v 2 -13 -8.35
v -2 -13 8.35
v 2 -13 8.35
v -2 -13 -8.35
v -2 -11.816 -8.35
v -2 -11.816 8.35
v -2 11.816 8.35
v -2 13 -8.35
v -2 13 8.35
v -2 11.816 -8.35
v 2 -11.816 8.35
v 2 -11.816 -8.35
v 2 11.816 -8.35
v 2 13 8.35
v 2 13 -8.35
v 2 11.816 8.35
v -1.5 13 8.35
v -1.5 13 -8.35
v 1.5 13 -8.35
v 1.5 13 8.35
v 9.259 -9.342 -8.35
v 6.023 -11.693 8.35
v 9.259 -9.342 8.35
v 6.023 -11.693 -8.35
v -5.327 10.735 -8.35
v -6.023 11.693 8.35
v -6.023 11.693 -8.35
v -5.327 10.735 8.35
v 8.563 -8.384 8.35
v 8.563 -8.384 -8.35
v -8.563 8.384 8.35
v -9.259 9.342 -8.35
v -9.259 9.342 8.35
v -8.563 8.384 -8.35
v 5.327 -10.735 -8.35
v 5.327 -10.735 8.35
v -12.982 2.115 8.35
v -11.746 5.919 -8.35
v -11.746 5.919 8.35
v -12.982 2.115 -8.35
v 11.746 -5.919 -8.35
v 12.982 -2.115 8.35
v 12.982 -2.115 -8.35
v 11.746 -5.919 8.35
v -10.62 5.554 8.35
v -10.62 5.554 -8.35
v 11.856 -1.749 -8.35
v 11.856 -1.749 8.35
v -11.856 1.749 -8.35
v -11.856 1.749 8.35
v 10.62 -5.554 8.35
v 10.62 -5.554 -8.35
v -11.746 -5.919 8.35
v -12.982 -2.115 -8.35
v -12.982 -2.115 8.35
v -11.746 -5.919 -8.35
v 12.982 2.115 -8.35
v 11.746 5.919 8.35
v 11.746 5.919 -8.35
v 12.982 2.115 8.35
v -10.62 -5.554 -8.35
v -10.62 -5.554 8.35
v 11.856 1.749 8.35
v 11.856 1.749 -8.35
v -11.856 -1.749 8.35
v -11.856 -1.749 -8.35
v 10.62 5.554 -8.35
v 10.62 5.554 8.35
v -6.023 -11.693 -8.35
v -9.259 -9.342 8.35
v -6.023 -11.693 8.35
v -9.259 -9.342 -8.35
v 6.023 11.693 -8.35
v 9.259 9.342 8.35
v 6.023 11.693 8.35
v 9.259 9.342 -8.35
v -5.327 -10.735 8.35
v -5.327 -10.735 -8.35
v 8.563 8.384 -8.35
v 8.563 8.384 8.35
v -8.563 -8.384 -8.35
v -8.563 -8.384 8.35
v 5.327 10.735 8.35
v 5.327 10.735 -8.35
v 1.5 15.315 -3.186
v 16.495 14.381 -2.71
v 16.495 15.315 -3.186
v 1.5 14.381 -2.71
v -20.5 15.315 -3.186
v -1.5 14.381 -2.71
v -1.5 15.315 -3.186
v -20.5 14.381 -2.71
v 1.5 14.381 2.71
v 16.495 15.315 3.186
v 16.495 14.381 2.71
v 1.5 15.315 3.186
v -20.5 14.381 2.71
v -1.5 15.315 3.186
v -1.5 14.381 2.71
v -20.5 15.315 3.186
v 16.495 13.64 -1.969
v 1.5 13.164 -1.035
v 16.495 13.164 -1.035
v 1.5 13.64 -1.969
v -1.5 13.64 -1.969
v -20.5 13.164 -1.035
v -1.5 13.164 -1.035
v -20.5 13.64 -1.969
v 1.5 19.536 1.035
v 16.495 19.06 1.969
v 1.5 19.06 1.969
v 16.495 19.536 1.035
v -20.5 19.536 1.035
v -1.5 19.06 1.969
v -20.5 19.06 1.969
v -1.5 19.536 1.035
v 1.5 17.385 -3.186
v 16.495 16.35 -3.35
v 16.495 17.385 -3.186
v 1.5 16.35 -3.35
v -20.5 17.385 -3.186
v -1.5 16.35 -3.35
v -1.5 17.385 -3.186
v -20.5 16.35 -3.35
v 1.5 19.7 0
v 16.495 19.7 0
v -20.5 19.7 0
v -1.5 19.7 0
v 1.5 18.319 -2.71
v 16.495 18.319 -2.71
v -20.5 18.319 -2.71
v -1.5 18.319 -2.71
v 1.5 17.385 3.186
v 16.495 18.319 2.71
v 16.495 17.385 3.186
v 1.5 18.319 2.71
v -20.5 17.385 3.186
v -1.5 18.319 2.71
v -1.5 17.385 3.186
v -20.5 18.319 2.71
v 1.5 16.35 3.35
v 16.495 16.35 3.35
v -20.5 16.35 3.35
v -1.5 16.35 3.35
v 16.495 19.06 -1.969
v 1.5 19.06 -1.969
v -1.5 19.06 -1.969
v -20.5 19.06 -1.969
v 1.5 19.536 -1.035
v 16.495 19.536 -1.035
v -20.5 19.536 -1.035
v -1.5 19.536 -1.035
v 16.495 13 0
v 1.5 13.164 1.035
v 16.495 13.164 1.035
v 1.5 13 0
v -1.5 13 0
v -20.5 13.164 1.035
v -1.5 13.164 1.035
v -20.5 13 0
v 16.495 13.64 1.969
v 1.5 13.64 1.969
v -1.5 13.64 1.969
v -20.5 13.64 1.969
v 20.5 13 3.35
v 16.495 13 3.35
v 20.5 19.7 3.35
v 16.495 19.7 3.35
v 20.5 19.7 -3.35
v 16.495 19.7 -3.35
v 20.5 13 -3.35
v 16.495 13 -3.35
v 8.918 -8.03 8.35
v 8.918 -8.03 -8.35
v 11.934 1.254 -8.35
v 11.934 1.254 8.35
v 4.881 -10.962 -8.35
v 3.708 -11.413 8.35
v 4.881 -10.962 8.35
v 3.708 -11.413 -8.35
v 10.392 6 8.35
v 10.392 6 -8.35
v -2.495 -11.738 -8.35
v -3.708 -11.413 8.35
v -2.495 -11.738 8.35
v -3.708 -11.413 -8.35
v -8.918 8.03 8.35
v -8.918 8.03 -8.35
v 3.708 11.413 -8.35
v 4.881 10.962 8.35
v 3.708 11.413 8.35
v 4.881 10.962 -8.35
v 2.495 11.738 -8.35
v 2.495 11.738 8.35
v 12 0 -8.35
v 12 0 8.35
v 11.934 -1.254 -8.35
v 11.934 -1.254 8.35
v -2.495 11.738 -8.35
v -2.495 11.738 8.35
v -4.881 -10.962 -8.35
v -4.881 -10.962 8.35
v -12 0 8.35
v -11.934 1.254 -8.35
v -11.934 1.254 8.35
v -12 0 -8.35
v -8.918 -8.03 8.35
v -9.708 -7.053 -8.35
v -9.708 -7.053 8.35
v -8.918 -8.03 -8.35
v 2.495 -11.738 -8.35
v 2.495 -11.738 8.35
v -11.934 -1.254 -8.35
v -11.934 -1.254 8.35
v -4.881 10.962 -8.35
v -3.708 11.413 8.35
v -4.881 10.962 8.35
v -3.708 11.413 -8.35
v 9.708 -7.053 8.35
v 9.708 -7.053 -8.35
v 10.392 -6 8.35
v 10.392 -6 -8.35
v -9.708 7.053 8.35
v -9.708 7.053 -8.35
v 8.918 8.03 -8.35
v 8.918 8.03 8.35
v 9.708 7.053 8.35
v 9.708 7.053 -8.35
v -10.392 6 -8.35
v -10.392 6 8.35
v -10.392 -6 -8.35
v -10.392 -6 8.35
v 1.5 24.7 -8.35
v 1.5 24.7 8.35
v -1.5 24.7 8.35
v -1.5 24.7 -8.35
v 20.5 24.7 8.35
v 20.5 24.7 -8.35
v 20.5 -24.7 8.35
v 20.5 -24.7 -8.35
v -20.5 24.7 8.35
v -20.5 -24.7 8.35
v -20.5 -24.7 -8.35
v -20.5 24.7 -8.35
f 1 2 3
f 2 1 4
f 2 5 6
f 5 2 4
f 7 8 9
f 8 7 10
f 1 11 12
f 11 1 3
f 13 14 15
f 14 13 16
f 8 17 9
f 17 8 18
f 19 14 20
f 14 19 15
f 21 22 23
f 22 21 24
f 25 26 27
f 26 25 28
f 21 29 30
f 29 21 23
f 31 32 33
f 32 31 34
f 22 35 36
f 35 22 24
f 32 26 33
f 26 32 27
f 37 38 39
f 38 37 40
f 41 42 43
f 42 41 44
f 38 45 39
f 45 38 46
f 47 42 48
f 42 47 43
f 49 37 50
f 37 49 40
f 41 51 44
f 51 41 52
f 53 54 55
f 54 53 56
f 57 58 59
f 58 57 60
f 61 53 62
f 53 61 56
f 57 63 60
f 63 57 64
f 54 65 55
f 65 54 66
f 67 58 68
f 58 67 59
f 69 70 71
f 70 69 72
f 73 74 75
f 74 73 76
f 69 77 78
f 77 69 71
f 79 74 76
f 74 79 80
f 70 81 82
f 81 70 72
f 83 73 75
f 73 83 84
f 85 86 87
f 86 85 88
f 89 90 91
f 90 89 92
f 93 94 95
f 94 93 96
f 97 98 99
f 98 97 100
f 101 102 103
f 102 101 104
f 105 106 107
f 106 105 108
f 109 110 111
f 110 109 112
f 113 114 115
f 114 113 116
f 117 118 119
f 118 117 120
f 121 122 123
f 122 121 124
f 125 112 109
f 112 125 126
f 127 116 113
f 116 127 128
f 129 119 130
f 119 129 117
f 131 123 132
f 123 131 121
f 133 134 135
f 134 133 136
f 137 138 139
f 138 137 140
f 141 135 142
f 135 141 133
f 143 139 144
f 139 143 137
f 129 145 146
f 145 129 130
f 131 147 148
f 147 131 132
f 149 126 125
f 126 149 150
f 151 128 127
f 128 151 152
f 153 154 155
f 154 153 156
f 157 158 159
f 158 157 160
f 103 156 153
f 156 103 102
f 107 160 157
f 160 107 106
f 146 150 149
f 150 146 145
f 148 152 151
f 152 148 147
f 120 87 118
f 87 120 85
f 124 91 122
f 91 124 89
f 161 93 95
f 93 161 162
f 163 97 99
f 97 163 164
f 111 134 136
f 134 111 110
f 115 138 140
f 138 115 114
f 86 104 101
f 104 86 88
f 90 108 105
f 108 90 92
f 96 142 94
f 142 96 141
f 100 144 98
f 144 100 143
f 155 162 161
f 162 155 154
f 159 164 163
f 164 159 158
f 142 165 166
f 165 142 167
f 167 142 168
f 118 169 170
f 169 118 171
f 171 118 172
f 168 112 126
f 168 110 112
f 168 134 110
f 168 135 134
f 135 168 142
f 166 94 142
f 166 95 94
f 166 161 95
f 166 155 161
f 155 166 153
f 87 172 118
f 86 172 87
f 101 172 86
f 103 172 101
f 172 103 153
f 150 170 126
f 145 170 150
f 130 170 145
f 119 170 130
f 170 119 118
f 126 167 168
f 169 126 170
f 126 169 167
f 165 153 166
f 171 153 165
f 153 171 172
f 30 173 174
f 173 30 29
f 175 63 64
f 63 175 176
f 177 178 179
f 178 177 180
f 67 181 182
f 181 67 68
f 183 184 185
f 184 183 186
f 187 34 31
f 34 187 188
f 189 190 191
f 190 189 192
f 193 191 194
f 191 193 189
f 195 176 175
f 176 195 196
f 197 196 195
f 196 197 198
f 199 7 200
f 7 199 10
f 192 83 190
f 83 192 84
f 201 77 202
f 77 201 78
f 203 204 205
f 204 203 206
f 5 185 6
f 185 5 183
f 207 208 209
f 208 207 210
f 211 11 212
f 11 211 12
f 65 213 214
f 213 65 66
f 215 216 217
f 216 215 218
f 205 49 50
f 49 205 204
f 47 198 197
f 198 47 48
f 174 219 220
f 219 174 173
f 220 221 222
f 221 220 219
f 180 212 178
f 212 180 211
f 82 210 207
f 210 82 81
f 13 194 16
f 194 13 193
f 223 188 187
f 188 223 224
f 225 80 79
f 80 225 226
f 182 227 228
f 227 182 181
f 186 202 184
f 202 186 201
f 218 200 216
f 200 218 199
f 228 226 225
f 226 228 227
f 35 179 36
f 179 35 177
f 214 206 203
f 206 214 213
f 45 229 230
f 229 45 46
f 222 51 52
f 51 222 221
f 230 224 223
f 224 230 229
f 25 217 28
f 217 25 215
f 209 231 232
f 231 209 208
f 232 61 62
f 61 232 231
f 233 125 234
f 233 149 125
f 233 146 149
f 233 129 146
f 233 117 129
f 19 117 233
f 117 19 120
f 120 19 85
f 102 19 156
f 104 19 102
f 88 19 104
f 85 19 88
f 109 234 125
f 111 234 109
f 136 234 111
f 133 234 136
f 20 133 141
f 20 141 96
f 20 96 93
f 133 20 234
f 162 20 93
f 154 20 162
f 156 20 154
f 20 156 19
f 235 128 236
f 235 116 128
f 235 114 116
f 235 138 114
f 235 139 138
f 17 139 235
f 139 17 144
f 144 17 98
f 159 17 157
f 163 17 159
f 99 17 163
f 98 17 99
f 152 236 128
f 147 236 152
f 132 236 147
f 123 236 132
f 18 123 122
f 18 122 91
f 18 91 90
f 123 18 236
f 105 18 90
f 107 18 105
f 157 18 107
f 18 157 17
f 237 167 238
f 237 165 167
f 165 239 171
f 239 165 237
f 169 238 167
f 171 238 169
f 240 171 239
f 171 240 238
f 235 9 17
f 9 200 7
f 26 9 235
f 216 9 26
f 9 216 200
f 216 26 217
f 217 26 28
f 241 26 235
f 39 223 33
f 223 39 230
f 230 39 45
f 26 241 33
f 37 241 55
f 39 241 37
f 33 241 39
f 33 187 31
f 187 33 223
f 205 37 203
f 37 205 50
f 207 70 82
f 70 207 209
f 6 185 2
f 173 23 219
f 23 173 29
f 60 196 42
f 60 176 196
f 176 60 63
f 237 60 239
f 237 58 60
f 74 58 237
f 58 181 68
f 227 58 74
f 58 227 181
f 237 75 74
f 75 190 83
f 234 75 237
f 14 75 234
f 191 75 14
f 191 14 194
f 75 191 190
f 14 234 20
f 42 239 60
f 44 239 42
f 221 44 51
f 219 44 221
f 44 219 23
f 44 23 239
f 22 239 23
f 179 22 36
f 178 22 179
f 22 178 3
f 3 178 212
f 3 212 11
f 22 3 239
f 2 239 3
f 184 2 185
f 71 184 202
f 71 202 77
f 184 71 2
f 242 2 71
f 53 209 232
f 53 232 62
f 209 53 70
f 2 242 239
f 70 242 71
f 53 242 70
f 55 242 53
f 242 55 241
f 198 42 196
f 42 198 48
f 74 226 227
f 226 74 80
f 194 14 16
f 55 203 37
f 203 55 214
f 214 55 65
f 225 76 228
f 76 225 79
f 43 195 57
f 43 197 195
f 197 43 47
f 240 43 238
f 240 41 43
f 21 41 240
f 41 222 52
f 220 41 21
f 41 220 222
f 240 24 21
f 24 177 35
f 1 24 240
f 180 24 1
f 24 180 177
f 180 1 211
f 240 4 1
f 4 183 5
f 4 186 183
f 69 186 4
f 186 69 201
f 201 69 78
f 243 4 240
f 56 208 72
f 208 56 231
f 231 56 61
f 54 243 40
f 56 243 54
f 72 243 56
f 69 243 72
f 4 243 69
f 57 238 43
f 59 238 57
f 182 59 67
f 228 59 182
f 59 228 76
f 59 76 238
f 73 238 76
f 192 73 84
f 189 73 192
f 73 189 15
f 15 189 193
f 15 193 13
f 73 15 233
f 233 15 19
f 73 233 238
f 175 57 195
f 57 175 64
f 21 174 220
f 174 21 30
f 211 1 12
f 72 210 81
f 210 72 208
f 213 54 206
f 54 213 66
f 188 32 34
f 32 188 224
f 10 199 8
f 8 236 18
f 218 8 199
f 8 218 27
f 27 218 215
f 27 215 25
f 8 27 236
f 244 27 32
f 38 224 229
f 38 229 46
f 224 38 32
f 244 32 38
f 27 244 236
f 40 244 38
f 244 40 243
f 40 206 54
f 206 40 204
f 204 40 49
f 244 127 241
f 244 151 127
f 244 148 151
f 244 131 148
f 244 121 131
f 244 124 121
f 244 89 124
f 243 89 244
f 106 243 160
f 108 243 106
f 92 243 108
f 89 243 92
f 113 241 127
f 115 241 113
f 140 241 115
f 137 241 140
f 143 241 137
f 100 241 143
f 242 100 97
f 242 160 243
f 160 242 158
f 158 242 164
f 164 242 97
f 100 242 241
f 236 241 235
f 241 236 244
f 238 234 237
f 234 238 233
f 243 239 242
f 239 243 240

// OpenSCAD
// file: lib/boltDim.scad
/*
    Mounting Blocks to build a camera boom.

    Copyright (C) 2021 John Winans

    This program is free software: you can redistribute it and/or modify
    it under the terms of the GNU General Public License as published by
    the Free Software Foundation, either version 3 of the License, or
    (at your option) any later version.

    This program is distributed in the hope that it will be useful,
    but WITHOUT ANY WARRANTY; without even the implied warranty of
    MERCHANTABILITY or FITNESS FOR A PARTICULAR PURPOSE.  See the
    GNU General Public License for more details.

    You should have received a copy of the GNU General Public License
    along with this program.  If not, see <https://www.gnu.org/licenses/>.
*/

bolt_dim_M2_dia = 3;		// for M2 bolt loose fit
bolt_dim_M2_tap = 2.4;		// for self-tapping a M2 bolt
bolt_dim_M2_head_dia = 4.6;// diameter for a crown countersink

bolt_dim_M25_dia = 3.5;		// for M2.5 bolt loose fit
bolt_dim_M25_tap = 2.6;		// for self-tapping a M2.5 bolt
bolt_dim_M25_head_dia = 6;	// diameter for a crown countersink

bolt_dim_M3_dia = 3.6;		// M3 bolt loose fit
bolt_dim_M3_tap = 3.1;		// for self-tapping M3 bolt
bolt_dim_M3_head_dia = 6.5;	// diameter for a crown countersink

bolt_dim_M5_dia = 5.4;		// for M5 bolt loose fit
bolt_dim_M5_tap = 5;		// for self-tapping a M5 bolt
bolt_dim_M5_head_dia = 9;	// diameter for a crown countersink

nut_dim_M5_DIN985 = 9.6;	// diameter for a hex hole to retain am M5 myloc


bolt_dim_quarter_dia = 6.7;	// for 1/4" bolt loose fit
bolt_dim_quarter_carriage_neck_depth = 4;	// neck length
// file: lib/clamp.scad
/*
	Mounting Blocks to build a camera boom.

    Copyright (C) 2021 John Winans

    This program is free software: you can redistribute it and/or modify
    it under the terms of the GNU General Public License as published by
    the Free Software Foundation, either version 3 of the License, or
    (at your option) any later version.

    This program is distributed in the hope that it will be useful,
    but WITHOUT ANY WARRANTY; without even the implied warranty of
    MERCHANTABILITY or FITNESS FOR A PARTICULAR PURPOSE.  See the
    GNU General Public License for more details.

    You should have received a copy of the GNU General Public License
    along with this program.  If not, see <https://www.gnu.org/licenses/>.
*/

include <boltDim.scad>


//********************************************************
// A pipe & bolt holes for a pipe clamp.
//********************************************************
module clamp_neg(
    relief_slot,        // how far from the edge of the pipe should the relief slot go?
    pipe_length, 
    pipe_diameter,
    clamp_bolt_length,    // used to determine the length of the clamp bolt
    clamp_bolt_dia,
    clamp_bolt_neck_depth,
    clamp_bolt_clearance,
    rib=false, 
    stripe=true
    )
{
    clamp_bolt_offset = pipe_diameter/2+clamp_bolt_dia/2+clamp_bolt_clearance;

    cz = pipe_length+.01;
    
    // the pipe hole
    cylinder(d=pipe_diameter, h=cz+.01, center=true, $fn=60);
    
    if (rib)
    {
        // rib it
        rh=2;
        rs=4;
        for (z=[-cz/2+rh*.5+1 : rs : cz/2]) // XXX fudge start to center it
            translate([0,0,z])
                cylinder(d=pipe_diameter+1, h=rh, center=true, $fn=60);
    }
    
    if (stripe)
    {
        // stripe it
        //rh=1.5;
        rh=4;
        rt=360/10;
        for (theta=[90:rt:2690])
            rotate([0,0,theta]) cube([pipe_diameter+2, rh, cz+.01], center=true);
    }
    
    // releif notch
    translate([0,pipe_diameter/2+relief_slot/2,0]) cube([3, relief_slot+.01, cz+.01], center=true);
    
    // clamp bolt
    translate([0,clamp_bolt_offset,0])
    {
        rotate([0,90,0]) 
        cylinder(d=clamp_bolt_dia, h=clamp_bolt_length+.01, $fn=20, center=true);
    
        // square for carriage bolt head
        translate([clamp_bolt_length/2-clamp_bolt_neck_depth/2,0,0])
            cube([clamp_bolt_neck_depth+.01, clamp_bolt_dia,clamp_bolt_dia], center=true);
    }
}
// main file
/*
    Mounting Blocks to build a camera boom.

    Copyright (C) 2021 John Winans

    This program is free software: you can redistribute it and/or modify
    it under the terms of the GNU General Public License as published by
    the Free Software Foundation, either version 3 of the License, or
    (at your option) any later version.

    This program is distributed in the hope that it will be useful,
    but WITHOUT ANY WARRANTY; without even the implied warranty of
    MERCHANTABILITY or FITNESS FOR A PARTICULAR PURPOSE.  See the
    GNU General Public License for more details.

    You should have received a copy of the GNU General Public License
    along with this program.  If not, see <https://www.gnu.org/licenses/>.
*/

include <lib/clamp.scad>


//********************************************************
// The size of the hole for the pipe(s)
pipe_diameter=24;       // 3/4" conduit


block_c_bolt_pipe_clearance=1;
block_c_bolt_inset=5;       // from clamp-bolt to the end of the block

block_inset=17;





// calculate the dimensions of the block using the above config variables

cx = pipe_diameter+block_inset;   

cbd=bolt_dim_quarter_dia;       // clamp bolt diameter
cz=cbd+block_c_bolt_inset*2;    // this is as thin as I'd want to go

cbl=cx;                         // length of the clamp bolt bore
cbnd=bolt_dim_quarter_carriage_neck_depth;

cbc=1;
rs=cbd+block_c_bolt_inset+cbc;       // relief slot width

cy = pipe_diameter+rs*2;



collet();


/**
* A helper for creating the negative space fpor the pipe clamp.
**********************************************************************************/
module cn()
{
    clamp_neg(
        clamp_bolt_length=cbl,
        clamp_bolt_dia=cbd,
        clamp_bolt_neck_depth=cbnd,
        relief_slot=rs,
        pipe_length=cz,
        pipe_diameter=pipe_diameter,
        clamp_bolt_clearance=cbc);
}


/**
* A collet
**********************************************************************************/
module collet()
{
    difference()
    {
		cube([cx,cy,cz], center=true);
        cn();
    }
}
